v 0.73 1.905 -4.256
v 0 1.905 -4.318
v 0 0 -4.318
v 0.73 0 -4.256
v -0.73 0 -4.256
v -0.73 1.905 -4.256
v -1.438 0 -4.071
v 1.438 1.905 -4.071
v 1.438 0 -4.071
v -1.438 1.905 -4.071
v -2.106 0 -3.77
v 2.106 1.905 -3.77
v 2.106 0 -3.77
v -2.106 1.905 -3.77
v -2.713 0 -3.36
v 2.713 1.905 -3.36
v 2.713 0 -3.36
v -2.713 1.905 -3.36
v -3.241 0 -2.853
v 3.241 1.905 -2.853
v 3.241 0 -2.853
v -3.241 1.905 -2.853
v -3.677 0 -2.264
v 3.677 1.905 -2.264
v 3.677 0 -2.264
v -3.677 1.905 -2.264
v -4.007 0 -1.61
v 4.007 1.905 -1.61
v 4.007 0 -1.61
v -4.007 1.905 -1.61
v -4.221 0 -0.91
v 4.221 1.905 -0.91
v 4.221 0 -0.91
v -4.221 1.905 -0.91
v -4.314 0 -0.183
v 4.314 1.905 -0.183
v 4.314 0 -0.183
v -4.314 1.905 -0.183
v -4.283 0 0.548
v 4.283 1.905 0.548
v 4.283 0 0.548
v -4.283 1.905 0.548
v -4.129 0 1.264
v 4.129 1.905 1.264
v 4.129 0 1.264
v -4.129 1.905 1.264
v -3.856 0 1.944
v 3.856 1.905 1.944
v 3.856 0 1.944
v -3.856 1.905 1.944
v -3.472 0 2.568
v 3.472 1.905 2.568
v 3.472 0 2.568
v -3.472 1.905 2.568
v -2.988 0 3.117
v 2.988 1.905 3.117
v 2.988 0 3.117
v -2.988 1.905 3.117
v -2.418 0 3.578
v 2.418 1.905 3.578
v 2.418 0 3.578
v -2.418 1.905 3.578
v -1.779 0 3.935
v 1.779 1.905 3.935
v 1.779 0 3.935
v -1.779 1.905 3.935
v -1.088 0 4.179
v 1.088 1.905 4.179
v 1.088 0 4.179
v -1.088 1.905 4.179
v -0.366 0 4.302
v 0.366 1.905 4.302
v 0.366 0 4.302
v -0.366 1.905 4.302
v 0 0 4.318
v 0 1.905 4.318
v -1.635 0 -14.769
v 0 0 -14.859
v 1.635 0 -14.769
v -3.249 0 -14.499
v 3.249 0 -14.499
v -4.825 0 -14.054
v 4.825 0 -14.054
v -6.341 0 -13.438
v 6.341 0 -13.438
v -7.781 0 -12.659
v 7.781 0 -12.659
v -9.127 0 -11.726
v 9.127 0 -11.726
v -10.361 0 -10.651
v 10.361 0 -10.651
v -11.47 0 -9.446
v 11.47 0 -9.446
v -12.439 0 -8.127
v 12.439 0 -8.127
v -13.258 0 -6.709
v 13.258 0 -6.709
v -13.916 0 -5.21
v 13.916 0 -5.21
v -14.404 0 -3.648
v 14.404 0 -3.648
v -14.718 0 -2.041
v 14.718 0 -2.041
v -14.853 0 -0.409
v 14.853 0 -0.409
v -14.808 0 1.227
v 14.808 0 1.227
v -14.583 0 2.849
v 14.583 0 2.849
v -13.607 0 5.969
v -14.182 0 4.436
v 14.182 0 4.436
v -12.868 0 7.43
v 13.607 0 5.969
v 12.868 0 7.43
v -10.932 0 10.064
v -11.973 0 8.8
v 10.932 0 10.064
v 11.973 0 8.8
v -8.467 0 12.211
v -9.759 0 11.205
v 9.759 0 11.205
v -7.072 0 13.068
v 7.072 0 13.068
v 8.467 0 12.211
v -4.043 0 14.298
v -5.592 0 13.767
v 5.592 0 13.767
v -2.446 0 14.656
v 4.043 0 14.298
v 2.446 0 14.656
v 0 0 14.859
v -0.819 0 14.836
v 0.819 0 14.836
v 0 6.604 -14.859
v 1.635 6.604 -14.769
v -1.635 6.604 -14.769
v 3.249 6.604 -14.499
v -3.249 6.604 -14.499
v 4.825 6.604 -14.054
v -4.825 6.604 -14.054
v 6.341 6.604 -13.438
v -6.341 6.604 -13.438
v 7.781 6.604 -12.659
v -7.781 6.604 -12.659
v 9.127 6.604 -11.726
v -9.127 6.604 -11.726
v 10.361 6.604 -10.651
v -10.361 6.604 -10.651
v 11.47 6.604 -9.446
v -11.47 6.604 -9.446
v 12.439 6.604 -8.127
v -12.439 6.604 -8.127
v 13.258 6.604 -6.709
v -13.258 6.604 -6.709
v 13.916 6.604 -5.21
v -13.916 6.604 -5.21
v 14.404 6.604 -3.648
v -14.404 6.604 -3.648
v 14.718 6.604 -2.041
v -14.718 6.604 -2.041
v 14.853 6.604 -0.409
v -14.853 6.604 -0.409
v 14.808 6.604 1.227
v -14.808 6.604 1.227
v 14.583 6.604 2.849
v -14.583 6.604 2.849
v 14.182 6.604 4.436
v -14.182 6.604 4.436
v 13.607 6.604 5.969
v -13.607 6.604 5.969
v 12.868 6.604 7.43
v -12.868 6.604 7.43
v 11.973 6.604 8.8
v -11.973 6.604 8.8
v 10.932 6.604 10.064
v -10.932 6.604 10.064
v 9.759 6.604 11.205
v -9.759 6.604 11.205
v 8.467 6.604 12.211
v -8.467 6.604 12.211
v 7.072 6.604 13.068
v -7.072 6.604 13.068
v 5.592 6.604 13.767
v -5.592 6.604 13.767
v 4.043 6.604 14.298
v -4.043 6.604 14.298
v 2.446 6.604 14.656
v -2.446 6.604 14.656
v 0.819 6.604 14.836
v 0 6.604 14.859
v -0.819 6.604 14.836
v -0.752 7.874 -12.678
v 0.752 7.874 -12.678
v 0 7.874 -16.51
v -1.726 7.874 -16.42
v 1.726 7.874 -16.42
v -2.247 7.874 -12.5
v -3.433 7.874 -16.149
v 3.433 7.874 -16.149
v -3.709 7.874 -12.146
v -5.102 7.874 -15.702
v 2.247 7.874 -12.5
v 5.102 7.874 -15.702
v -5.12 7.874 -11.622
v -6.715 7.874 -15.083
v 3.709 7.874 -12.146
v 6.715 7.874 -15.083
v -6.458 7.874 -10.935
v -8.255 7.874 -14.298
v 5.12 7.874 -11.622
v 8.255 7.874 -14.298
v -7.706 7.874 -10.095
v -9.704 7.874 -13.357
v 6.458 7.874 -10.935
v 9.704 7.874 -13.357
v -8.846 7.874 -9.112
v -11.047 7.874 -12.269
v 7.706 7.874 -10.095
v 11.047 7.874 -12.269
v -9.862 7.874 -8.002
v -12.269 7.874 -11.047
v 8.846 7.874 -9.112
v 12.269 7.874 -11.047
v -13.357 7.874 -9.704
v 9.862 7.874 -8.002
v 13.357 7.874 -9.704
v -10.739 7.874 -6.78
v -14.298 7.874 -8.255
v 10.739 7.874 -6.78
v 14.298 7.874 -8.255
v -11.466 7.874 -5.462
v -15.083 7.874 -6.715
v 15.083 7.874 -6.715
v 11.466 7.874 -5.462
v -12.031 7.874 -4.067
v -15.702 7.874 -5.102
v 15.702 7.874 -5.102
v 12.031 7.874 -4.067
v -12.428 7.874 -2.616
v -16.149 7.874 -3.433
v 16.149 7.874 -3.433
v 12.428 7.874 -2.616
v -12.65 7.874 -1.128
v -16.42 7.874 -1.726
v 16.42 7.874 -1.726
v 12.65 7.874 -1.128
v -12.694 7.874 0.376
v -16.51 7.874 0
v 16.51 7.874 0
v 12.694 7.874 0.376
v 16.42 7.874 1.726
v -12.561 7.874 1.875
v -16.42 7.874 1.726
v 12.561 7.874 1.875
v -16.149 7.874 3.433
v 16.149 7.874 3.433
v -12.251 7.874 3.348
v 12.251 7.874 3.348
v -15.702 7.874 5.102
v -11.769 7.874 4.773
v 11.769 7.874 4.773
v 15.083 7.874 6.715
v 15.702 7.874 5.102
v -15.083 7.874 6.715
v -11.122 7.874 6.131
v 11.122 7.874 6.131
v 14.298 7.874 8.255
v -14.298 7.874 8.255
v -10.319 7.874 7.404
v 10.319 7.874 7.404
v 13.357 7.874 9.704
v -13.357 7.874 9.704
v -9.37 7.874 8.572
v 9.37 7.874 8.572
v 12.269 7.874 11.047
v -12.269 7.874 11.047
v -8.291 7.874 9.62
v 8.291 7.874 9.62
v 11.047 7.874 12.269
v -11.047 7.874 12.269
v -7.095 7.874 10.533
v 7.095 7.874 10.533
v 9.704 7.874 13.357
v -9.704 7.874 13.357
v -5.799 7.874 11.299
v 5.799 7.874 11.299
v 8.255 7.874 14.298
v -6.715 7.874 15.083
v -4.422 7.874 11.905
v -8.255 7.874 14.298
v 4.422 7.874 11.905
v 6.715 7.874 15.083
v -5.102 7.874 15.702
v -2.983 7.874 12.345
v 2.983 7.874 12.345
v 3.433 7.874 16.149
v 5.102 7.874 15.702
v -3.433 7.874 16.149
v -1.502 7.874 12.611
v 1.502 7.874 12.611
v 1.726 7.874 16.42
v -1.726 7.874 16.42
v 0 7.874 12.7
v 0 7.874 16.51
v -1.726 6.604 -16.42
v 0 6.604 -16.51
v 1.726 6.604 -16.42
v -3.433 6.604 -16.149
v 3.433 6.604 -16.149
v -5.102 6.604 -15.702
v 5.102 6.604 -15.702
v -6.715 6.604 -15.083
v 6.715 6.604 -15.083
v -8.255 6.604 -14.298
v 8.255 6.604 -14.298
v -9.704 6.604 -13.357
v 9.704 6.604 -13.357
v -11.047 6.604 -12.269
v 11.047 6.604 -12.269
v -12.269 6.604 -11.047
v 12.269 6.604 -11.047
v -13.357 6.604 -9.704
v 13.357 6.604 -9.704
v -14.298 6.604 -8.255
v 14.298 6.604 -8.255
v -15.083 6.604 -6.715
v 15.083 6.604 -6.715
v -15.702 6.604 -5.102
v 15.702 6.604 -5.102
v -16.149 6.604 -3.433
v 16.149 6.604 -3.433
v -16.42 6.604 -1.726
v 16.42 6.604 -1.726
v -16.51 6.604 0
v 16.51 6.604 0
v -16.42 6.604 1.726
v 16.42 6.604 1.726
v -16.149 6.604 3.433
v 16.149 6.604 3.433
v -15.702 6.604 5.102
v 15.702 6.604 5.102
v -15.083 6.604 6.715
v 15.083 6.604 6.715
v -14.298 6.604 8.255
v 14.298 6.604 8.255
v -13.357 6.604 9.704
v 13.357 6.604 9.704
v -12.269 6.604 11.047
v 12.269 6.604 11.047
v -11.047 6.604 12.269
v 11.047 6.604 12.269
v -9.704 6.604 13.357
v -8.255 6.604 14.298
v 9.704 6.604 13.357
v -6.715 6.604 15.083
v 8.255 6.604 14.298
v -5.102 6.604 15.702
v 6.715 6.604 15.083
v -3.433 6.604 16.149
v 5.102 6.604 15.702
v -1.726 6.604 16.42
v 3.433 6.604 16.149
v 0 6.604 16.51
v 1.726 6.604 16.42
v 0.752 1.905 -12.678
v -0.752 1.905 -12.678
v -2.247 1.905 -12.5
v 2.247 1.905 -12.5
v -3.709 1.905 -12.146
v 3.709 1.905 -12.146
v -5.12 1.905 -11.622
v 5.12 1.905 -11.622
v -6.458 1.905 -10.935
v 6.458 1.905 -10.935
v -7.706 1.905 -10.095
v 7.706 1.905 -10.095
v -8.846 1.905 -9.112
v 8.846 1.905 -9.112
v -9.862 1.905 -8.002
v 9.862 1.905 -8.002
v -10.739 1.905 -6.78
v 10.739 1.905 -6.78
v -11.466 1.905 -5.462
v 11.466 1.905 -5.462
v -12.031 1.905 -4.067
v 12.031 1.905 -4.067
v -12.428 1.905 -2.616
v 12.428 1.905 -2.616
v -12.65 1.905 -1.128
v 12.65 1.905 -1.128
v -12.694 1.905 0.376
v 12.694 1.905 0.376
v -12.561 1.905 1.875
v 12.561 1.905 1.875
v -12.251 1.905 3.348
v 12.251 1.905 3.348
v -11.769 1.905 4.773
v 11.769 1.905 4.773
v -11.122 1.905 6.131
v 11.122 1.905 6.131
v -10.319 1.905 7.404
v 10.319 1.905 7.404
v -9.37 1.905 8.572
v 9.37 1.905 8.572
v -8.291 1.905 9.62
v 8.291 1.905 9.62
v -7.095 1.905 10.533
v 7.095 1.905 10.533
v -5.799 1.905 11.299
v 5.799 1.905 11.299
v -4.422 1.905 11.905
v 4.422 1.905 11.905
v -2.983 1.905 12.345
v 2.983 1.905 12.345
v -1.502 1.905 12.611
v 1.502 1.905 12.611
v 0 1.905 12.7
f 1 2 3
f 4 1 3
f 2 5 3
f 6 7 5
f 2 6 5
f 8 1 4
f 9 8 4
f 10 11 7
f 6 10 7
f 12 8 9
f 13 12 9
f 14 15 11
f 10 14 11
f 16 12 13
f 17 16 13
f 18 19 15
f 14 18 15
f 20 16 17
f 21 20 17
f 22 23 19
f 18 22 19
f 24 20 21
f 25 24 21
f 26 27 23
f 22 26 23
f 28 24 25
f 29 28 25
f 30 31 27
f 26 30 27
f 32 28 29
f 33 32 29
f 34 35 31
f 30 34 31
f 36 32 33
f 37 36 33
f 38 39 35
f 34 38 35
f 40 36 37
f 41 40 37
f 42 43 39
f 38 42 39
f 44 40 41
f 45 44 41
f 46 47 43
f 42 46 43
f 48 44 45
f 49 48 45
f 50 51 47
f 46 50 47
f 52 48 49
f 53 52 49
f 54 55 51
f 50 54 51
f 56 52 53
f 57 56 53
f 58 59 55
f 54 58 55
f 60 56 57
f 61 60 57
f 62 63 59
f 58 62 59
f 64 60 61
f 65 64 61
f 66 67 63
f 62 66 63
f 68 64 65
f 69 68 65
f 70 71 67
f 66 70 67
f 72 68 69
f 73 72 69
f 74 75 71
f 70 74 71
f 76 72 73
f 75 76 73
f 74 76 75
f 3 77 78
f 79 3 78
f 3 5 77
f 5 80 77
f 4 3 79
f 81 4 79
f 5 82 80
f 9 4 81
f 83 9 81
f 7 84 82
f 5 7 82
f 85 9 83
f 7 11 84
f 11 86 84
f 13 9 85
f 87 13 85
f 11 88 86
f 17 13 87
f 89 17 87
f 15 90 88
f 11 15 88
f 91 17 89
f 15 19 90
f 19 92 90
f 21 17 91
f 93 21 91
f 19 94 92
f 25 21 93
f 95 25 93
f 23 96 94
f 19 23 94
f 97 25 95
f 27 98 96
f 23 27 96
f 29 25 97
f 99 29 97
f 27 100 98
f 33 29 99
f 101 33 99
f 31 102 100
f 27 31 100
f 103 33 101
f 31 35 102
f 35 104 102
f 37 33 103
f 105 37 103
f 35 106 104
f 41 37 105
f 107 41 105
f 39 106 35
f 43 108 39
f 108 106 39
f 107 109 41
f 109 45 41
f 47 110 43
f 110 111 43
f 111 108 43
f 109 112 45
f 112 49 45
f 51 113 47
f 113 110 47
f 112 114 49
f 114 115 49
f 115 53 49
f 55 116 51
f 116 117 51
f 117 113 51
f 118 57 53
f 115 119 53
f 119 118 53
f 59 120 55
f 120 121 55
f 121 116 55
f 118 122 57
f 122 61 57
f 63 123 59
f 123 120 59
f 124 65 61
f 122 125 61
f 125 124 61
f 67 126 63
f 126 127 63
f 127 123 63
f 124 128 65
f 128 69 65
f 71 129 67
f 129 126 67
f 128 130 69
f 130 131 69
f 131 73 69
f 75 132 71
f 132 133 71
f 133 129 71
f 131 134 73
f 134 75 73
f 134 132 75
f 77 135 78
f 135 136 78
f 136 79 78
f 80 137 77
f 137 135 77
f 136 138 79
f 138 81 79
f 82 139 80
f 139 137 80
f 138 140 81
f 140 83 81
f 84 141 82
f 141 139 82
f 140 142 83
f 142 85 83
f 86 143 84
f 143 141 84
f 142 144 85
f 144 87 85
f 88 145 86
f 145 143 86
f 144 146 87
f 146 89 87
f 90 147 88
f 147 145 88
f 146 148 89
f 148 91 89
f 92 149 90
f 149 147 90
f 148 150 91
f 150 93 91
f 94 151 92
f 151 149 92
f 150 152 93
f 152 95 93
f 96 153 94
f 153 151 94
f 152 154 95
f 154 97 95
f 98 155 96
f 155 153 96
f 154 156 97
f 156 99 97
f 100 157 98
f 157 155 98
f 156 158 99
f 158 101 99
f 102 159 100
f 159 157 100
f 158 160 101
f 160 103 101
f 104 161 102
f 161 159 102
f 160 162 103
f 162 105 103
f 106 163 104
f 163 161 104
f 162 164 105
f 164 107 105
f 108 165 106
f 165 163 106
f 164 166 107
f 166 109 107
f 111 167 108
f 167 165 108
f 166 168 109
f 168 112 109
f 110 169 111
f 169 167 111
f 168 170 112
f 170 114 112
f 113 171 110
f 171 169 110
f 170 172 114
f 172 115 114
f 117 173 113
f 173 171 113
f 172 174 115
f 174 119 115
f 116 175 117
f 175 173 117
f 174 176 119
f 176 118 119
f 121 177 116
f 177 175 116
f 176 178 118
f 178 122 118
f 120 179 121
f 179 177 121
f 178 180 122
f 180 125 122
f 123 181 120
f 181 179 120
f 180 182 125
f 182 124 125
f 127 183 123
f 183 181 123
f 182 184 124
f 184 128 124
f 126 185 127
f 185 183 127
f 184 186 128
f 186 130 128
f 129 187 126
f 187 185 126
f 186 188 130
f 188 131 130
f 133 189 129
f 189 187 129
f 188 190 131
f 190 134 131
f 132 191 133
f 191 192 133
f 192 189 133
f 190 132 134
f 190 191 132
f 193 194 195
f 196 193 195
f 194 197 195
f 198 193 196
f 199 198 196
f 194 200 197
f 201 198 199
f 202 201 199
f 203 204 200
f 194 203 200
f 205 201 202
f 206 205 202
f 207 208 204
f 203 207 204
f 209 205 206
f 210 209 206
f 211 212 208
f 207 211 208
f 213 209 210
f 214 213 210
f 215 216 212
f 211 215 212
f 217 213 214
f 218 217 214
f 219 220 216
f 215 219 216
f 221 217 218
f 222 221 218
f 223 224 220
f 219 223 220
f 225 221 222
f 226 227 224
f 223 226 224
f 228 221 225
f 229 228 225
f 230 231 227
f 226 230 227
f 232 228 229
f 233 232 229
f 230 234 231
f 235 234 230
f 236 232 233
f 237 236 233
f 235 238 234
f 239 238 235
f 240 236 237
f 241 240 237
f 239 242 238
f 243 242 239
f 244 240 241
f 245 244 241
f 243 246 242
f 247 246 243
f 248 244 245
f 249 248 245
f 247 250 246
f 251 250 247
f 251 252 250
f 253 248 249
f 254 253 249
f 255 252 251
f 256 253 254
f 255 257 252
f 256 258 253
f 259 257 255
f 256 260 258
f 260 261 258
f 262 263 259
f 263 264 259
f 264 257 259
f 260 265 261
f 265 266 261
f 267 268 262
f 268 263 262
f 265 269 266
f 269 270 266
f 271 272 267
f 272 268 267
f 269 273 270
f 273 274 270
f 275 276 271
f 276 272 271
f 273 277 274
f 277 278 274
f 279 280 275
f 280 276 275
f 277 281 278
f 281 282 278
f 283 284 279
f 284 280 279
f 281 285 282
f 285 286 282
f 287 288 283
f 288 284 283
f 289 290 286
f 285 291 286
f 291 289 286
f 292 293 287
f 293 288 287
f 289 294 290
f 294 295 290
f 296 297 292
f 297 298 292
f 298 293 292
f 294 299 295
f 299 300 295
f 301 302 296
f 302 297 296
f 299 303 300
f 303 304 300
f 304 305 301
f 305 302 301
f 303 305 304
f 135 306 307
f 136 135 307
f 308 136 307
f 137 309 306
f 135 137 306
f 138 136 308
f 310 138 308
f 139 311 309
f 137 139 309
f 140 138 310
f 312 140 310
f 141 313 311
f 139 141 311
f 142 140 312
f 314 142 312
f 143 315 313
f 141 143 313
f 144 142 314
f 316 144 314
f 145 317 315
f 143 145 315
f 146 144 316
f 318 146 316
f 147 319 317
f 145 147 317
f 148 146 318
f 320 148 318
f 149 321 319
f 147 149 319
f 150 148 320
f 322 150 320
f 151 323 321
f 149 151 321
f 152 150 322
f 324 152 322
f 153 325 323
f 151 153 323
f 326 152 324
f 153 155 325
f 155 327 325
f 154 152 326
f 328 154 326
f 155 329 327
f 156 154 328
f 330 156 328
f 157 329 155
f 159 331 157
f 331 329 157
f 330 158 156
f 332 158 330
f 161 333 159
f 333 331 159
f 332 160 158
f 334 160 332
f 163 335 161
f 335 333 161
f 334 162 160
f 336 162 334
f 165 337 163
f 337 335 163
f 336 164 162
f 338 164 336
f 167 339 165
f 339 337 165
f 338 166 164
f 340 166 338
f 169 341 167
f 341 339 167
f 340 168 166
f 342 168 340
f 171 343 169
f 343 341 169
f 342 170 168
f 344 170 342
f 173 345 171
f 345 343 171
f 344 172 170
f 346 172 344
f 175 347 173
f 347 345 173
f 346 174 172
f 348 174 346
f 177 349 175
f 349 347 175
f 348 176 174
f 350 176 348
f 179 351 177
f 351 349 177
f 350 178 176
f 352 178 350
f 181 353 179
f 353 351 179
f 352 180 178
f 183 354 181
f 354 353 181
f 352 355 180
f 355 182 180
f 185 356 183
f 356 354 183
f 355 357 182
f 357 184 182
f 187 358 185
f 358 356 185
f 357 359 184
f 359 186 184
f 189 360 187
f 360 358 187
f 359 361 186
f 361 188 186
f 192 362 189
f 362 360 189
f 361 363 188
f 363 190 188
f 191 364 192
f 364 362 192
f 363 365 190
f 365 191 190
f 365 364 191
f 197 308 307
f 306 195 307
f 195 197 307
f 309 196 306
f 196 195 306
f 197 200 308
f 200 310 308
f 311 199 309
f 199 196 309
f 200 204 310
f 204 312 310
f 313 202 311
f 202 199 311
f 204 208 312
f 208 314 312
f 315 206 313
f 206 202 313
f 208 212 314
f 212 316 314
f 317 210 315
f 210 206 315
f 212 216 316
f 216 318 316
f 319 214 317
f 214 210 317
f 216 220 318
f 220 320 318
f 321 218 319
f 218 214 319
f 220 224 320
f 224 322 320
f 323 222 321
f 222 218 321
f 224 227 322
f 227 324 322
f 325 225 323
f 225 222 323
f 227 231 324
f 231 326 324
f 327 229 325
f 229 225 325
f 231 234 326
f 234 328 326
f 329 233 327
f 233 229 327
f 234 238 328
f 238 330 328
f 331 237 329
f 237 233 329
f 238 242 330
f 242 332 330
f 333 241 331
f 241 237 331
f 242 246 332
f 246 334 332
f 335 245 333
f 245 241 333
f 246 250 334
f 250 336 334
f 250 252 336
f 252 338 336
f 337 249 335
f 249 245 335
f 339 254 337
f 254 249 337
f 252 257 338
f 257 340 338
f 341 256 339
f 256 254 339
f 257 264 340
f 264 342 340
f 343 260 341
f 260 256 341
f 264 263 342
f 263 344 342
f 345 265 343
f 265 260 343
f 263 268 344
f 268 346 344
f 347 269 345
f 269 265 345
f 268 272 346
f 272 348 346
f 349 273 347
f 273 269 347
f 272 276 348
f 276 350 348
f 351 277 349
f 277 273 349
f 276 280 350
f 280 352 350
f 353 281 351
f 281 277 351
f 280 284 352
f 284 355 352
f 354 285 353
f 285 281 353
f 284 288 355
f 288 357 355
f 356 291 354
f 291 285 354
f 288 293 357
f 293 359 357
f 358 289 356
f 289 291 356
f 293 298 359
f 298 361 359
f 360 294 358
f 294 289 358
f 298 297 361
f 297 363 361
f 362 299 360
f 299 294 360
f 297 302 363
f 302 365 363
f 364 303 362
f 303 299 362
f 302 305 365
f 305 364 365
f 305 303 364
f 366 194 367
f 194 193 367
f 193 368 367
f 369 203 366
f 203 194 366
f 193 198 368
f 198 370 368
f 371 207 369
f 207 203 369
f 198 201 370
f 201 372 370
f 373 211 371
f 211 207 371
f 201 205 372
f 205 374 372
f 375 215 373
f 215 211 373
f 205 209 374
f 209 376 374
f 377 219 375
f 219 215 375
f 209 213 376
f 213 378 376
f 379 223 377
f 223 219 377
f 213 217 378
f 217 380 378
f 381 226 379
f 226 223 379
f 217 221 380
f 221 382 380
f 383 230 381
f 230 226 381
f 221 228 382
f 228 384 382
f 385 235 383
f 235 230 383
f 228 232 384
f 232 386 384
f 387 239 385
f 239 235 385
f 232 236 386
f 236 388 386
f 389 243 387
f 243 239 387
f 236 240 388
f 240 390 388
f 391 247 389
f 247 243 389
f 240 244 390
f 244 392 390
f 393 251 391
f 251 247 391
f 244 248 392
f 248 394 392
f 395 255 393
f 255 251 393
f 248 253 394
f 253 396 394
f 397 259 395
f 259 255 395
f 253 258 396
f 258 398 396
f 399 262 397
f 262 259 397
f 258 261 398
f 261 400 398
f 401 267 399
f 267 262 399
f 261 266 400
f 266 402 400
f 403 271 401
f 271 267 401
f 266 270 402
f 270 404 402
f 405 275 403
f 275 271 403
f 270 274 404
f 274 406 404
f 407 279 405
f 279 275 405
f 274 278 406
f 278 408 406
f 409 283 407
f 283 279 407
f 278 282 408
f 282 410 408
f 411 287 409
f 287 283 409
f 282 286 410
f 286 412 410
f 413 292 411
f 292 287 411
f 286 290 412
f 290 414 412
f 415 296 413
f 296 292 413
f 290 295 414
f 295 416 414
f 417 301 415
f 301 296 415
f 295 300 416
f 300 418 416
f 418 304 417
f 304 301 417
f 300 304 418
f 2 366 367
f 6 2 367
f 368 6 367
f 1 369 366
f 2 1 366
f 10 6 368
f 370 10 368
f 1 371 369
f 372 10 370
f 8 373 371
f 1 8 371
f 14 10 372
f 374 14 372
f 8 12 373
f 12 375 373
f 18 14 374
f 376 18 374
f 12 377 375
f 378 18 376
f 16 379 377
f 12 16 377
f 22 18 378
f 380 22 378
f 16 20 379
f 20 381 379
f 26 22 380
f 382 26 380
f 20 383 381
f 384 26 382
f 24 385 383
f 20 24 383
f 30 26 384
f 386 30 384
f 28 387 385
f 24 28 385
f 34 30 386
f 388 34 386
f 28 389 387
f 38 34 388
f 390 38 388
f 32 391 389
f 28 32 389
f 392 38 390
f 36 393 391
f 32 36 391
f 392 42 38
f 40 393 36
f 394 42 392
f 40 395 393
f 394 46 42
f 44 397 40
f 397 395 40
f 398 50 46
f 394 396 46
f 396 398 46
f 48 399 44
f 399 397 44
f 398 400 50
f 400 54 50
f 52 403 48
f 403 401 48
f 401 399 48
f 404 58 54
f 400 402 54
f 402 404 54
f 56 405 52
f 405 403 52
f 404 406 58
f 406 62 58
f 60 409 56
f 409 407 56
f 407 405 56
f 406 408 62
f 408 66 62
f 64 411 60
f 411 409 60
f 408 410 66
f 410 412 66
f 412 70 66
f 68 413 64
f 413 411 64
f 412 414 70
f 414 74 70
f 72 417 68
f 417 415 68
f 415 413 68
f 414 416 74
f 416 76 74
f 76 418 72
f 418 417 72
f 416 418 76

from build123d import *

# Parameters (mm, degrees)
SKETCH1_R           = 14.859
SKETCH1_R_2         = 4.318
BOSS_EXTRUDE1_DEPTH = 6.604
SKETCH2_R           = 16.51
SKETCH2_R_2         = 4.318
BOSS_EXTRUDE2_DEPTH = 1.27
SKETCH3_R           = 12.7
CUT_EXTRUDE1_DEPTH  = 5.969


with BuildPart() as part:
    # Sketch1 → Boss-Extrude1 (new body)
    with BuildSketch(Plane(origin=(0, 0, 0), x_dir=(1, 0, 0), z_dir=(0, 1, 0))):
        Circle(SKETCH1_R)
        Circle(SKETCH1_R_2, mode=Mode.SUBTRACT)
    extrude(amount=BOSS_EXTRUDE1_DEPTH)

    # Sketch2 → Boss-Extrude2 (add)
    with BuildSketch(Plane(origin=(0, 6.604, 0), x_dir=(1, 0, 0), z_dir=(0, 1, 0))):
        Circle(SKETCH2_R)
        Circle(SKETCH2_R_2, mode=Mode.SUBTRACT)
    extrude(amount=BOSS_EXTRUDE2_DEPTH)

    # Sketch3 → Cut-Extrude1 (cut)
    with BuildSketch(Plane(origin=(0, 7.874, 0), x_dir=(1, 0, 0), z_dir=(0, 1, 0))):
        Circle(SKETCH3_R)
    extrude(amount=-CUT_EXTRUDE1_DEPTH, mode=Mode.SUBTRACT)


solid = part.part
